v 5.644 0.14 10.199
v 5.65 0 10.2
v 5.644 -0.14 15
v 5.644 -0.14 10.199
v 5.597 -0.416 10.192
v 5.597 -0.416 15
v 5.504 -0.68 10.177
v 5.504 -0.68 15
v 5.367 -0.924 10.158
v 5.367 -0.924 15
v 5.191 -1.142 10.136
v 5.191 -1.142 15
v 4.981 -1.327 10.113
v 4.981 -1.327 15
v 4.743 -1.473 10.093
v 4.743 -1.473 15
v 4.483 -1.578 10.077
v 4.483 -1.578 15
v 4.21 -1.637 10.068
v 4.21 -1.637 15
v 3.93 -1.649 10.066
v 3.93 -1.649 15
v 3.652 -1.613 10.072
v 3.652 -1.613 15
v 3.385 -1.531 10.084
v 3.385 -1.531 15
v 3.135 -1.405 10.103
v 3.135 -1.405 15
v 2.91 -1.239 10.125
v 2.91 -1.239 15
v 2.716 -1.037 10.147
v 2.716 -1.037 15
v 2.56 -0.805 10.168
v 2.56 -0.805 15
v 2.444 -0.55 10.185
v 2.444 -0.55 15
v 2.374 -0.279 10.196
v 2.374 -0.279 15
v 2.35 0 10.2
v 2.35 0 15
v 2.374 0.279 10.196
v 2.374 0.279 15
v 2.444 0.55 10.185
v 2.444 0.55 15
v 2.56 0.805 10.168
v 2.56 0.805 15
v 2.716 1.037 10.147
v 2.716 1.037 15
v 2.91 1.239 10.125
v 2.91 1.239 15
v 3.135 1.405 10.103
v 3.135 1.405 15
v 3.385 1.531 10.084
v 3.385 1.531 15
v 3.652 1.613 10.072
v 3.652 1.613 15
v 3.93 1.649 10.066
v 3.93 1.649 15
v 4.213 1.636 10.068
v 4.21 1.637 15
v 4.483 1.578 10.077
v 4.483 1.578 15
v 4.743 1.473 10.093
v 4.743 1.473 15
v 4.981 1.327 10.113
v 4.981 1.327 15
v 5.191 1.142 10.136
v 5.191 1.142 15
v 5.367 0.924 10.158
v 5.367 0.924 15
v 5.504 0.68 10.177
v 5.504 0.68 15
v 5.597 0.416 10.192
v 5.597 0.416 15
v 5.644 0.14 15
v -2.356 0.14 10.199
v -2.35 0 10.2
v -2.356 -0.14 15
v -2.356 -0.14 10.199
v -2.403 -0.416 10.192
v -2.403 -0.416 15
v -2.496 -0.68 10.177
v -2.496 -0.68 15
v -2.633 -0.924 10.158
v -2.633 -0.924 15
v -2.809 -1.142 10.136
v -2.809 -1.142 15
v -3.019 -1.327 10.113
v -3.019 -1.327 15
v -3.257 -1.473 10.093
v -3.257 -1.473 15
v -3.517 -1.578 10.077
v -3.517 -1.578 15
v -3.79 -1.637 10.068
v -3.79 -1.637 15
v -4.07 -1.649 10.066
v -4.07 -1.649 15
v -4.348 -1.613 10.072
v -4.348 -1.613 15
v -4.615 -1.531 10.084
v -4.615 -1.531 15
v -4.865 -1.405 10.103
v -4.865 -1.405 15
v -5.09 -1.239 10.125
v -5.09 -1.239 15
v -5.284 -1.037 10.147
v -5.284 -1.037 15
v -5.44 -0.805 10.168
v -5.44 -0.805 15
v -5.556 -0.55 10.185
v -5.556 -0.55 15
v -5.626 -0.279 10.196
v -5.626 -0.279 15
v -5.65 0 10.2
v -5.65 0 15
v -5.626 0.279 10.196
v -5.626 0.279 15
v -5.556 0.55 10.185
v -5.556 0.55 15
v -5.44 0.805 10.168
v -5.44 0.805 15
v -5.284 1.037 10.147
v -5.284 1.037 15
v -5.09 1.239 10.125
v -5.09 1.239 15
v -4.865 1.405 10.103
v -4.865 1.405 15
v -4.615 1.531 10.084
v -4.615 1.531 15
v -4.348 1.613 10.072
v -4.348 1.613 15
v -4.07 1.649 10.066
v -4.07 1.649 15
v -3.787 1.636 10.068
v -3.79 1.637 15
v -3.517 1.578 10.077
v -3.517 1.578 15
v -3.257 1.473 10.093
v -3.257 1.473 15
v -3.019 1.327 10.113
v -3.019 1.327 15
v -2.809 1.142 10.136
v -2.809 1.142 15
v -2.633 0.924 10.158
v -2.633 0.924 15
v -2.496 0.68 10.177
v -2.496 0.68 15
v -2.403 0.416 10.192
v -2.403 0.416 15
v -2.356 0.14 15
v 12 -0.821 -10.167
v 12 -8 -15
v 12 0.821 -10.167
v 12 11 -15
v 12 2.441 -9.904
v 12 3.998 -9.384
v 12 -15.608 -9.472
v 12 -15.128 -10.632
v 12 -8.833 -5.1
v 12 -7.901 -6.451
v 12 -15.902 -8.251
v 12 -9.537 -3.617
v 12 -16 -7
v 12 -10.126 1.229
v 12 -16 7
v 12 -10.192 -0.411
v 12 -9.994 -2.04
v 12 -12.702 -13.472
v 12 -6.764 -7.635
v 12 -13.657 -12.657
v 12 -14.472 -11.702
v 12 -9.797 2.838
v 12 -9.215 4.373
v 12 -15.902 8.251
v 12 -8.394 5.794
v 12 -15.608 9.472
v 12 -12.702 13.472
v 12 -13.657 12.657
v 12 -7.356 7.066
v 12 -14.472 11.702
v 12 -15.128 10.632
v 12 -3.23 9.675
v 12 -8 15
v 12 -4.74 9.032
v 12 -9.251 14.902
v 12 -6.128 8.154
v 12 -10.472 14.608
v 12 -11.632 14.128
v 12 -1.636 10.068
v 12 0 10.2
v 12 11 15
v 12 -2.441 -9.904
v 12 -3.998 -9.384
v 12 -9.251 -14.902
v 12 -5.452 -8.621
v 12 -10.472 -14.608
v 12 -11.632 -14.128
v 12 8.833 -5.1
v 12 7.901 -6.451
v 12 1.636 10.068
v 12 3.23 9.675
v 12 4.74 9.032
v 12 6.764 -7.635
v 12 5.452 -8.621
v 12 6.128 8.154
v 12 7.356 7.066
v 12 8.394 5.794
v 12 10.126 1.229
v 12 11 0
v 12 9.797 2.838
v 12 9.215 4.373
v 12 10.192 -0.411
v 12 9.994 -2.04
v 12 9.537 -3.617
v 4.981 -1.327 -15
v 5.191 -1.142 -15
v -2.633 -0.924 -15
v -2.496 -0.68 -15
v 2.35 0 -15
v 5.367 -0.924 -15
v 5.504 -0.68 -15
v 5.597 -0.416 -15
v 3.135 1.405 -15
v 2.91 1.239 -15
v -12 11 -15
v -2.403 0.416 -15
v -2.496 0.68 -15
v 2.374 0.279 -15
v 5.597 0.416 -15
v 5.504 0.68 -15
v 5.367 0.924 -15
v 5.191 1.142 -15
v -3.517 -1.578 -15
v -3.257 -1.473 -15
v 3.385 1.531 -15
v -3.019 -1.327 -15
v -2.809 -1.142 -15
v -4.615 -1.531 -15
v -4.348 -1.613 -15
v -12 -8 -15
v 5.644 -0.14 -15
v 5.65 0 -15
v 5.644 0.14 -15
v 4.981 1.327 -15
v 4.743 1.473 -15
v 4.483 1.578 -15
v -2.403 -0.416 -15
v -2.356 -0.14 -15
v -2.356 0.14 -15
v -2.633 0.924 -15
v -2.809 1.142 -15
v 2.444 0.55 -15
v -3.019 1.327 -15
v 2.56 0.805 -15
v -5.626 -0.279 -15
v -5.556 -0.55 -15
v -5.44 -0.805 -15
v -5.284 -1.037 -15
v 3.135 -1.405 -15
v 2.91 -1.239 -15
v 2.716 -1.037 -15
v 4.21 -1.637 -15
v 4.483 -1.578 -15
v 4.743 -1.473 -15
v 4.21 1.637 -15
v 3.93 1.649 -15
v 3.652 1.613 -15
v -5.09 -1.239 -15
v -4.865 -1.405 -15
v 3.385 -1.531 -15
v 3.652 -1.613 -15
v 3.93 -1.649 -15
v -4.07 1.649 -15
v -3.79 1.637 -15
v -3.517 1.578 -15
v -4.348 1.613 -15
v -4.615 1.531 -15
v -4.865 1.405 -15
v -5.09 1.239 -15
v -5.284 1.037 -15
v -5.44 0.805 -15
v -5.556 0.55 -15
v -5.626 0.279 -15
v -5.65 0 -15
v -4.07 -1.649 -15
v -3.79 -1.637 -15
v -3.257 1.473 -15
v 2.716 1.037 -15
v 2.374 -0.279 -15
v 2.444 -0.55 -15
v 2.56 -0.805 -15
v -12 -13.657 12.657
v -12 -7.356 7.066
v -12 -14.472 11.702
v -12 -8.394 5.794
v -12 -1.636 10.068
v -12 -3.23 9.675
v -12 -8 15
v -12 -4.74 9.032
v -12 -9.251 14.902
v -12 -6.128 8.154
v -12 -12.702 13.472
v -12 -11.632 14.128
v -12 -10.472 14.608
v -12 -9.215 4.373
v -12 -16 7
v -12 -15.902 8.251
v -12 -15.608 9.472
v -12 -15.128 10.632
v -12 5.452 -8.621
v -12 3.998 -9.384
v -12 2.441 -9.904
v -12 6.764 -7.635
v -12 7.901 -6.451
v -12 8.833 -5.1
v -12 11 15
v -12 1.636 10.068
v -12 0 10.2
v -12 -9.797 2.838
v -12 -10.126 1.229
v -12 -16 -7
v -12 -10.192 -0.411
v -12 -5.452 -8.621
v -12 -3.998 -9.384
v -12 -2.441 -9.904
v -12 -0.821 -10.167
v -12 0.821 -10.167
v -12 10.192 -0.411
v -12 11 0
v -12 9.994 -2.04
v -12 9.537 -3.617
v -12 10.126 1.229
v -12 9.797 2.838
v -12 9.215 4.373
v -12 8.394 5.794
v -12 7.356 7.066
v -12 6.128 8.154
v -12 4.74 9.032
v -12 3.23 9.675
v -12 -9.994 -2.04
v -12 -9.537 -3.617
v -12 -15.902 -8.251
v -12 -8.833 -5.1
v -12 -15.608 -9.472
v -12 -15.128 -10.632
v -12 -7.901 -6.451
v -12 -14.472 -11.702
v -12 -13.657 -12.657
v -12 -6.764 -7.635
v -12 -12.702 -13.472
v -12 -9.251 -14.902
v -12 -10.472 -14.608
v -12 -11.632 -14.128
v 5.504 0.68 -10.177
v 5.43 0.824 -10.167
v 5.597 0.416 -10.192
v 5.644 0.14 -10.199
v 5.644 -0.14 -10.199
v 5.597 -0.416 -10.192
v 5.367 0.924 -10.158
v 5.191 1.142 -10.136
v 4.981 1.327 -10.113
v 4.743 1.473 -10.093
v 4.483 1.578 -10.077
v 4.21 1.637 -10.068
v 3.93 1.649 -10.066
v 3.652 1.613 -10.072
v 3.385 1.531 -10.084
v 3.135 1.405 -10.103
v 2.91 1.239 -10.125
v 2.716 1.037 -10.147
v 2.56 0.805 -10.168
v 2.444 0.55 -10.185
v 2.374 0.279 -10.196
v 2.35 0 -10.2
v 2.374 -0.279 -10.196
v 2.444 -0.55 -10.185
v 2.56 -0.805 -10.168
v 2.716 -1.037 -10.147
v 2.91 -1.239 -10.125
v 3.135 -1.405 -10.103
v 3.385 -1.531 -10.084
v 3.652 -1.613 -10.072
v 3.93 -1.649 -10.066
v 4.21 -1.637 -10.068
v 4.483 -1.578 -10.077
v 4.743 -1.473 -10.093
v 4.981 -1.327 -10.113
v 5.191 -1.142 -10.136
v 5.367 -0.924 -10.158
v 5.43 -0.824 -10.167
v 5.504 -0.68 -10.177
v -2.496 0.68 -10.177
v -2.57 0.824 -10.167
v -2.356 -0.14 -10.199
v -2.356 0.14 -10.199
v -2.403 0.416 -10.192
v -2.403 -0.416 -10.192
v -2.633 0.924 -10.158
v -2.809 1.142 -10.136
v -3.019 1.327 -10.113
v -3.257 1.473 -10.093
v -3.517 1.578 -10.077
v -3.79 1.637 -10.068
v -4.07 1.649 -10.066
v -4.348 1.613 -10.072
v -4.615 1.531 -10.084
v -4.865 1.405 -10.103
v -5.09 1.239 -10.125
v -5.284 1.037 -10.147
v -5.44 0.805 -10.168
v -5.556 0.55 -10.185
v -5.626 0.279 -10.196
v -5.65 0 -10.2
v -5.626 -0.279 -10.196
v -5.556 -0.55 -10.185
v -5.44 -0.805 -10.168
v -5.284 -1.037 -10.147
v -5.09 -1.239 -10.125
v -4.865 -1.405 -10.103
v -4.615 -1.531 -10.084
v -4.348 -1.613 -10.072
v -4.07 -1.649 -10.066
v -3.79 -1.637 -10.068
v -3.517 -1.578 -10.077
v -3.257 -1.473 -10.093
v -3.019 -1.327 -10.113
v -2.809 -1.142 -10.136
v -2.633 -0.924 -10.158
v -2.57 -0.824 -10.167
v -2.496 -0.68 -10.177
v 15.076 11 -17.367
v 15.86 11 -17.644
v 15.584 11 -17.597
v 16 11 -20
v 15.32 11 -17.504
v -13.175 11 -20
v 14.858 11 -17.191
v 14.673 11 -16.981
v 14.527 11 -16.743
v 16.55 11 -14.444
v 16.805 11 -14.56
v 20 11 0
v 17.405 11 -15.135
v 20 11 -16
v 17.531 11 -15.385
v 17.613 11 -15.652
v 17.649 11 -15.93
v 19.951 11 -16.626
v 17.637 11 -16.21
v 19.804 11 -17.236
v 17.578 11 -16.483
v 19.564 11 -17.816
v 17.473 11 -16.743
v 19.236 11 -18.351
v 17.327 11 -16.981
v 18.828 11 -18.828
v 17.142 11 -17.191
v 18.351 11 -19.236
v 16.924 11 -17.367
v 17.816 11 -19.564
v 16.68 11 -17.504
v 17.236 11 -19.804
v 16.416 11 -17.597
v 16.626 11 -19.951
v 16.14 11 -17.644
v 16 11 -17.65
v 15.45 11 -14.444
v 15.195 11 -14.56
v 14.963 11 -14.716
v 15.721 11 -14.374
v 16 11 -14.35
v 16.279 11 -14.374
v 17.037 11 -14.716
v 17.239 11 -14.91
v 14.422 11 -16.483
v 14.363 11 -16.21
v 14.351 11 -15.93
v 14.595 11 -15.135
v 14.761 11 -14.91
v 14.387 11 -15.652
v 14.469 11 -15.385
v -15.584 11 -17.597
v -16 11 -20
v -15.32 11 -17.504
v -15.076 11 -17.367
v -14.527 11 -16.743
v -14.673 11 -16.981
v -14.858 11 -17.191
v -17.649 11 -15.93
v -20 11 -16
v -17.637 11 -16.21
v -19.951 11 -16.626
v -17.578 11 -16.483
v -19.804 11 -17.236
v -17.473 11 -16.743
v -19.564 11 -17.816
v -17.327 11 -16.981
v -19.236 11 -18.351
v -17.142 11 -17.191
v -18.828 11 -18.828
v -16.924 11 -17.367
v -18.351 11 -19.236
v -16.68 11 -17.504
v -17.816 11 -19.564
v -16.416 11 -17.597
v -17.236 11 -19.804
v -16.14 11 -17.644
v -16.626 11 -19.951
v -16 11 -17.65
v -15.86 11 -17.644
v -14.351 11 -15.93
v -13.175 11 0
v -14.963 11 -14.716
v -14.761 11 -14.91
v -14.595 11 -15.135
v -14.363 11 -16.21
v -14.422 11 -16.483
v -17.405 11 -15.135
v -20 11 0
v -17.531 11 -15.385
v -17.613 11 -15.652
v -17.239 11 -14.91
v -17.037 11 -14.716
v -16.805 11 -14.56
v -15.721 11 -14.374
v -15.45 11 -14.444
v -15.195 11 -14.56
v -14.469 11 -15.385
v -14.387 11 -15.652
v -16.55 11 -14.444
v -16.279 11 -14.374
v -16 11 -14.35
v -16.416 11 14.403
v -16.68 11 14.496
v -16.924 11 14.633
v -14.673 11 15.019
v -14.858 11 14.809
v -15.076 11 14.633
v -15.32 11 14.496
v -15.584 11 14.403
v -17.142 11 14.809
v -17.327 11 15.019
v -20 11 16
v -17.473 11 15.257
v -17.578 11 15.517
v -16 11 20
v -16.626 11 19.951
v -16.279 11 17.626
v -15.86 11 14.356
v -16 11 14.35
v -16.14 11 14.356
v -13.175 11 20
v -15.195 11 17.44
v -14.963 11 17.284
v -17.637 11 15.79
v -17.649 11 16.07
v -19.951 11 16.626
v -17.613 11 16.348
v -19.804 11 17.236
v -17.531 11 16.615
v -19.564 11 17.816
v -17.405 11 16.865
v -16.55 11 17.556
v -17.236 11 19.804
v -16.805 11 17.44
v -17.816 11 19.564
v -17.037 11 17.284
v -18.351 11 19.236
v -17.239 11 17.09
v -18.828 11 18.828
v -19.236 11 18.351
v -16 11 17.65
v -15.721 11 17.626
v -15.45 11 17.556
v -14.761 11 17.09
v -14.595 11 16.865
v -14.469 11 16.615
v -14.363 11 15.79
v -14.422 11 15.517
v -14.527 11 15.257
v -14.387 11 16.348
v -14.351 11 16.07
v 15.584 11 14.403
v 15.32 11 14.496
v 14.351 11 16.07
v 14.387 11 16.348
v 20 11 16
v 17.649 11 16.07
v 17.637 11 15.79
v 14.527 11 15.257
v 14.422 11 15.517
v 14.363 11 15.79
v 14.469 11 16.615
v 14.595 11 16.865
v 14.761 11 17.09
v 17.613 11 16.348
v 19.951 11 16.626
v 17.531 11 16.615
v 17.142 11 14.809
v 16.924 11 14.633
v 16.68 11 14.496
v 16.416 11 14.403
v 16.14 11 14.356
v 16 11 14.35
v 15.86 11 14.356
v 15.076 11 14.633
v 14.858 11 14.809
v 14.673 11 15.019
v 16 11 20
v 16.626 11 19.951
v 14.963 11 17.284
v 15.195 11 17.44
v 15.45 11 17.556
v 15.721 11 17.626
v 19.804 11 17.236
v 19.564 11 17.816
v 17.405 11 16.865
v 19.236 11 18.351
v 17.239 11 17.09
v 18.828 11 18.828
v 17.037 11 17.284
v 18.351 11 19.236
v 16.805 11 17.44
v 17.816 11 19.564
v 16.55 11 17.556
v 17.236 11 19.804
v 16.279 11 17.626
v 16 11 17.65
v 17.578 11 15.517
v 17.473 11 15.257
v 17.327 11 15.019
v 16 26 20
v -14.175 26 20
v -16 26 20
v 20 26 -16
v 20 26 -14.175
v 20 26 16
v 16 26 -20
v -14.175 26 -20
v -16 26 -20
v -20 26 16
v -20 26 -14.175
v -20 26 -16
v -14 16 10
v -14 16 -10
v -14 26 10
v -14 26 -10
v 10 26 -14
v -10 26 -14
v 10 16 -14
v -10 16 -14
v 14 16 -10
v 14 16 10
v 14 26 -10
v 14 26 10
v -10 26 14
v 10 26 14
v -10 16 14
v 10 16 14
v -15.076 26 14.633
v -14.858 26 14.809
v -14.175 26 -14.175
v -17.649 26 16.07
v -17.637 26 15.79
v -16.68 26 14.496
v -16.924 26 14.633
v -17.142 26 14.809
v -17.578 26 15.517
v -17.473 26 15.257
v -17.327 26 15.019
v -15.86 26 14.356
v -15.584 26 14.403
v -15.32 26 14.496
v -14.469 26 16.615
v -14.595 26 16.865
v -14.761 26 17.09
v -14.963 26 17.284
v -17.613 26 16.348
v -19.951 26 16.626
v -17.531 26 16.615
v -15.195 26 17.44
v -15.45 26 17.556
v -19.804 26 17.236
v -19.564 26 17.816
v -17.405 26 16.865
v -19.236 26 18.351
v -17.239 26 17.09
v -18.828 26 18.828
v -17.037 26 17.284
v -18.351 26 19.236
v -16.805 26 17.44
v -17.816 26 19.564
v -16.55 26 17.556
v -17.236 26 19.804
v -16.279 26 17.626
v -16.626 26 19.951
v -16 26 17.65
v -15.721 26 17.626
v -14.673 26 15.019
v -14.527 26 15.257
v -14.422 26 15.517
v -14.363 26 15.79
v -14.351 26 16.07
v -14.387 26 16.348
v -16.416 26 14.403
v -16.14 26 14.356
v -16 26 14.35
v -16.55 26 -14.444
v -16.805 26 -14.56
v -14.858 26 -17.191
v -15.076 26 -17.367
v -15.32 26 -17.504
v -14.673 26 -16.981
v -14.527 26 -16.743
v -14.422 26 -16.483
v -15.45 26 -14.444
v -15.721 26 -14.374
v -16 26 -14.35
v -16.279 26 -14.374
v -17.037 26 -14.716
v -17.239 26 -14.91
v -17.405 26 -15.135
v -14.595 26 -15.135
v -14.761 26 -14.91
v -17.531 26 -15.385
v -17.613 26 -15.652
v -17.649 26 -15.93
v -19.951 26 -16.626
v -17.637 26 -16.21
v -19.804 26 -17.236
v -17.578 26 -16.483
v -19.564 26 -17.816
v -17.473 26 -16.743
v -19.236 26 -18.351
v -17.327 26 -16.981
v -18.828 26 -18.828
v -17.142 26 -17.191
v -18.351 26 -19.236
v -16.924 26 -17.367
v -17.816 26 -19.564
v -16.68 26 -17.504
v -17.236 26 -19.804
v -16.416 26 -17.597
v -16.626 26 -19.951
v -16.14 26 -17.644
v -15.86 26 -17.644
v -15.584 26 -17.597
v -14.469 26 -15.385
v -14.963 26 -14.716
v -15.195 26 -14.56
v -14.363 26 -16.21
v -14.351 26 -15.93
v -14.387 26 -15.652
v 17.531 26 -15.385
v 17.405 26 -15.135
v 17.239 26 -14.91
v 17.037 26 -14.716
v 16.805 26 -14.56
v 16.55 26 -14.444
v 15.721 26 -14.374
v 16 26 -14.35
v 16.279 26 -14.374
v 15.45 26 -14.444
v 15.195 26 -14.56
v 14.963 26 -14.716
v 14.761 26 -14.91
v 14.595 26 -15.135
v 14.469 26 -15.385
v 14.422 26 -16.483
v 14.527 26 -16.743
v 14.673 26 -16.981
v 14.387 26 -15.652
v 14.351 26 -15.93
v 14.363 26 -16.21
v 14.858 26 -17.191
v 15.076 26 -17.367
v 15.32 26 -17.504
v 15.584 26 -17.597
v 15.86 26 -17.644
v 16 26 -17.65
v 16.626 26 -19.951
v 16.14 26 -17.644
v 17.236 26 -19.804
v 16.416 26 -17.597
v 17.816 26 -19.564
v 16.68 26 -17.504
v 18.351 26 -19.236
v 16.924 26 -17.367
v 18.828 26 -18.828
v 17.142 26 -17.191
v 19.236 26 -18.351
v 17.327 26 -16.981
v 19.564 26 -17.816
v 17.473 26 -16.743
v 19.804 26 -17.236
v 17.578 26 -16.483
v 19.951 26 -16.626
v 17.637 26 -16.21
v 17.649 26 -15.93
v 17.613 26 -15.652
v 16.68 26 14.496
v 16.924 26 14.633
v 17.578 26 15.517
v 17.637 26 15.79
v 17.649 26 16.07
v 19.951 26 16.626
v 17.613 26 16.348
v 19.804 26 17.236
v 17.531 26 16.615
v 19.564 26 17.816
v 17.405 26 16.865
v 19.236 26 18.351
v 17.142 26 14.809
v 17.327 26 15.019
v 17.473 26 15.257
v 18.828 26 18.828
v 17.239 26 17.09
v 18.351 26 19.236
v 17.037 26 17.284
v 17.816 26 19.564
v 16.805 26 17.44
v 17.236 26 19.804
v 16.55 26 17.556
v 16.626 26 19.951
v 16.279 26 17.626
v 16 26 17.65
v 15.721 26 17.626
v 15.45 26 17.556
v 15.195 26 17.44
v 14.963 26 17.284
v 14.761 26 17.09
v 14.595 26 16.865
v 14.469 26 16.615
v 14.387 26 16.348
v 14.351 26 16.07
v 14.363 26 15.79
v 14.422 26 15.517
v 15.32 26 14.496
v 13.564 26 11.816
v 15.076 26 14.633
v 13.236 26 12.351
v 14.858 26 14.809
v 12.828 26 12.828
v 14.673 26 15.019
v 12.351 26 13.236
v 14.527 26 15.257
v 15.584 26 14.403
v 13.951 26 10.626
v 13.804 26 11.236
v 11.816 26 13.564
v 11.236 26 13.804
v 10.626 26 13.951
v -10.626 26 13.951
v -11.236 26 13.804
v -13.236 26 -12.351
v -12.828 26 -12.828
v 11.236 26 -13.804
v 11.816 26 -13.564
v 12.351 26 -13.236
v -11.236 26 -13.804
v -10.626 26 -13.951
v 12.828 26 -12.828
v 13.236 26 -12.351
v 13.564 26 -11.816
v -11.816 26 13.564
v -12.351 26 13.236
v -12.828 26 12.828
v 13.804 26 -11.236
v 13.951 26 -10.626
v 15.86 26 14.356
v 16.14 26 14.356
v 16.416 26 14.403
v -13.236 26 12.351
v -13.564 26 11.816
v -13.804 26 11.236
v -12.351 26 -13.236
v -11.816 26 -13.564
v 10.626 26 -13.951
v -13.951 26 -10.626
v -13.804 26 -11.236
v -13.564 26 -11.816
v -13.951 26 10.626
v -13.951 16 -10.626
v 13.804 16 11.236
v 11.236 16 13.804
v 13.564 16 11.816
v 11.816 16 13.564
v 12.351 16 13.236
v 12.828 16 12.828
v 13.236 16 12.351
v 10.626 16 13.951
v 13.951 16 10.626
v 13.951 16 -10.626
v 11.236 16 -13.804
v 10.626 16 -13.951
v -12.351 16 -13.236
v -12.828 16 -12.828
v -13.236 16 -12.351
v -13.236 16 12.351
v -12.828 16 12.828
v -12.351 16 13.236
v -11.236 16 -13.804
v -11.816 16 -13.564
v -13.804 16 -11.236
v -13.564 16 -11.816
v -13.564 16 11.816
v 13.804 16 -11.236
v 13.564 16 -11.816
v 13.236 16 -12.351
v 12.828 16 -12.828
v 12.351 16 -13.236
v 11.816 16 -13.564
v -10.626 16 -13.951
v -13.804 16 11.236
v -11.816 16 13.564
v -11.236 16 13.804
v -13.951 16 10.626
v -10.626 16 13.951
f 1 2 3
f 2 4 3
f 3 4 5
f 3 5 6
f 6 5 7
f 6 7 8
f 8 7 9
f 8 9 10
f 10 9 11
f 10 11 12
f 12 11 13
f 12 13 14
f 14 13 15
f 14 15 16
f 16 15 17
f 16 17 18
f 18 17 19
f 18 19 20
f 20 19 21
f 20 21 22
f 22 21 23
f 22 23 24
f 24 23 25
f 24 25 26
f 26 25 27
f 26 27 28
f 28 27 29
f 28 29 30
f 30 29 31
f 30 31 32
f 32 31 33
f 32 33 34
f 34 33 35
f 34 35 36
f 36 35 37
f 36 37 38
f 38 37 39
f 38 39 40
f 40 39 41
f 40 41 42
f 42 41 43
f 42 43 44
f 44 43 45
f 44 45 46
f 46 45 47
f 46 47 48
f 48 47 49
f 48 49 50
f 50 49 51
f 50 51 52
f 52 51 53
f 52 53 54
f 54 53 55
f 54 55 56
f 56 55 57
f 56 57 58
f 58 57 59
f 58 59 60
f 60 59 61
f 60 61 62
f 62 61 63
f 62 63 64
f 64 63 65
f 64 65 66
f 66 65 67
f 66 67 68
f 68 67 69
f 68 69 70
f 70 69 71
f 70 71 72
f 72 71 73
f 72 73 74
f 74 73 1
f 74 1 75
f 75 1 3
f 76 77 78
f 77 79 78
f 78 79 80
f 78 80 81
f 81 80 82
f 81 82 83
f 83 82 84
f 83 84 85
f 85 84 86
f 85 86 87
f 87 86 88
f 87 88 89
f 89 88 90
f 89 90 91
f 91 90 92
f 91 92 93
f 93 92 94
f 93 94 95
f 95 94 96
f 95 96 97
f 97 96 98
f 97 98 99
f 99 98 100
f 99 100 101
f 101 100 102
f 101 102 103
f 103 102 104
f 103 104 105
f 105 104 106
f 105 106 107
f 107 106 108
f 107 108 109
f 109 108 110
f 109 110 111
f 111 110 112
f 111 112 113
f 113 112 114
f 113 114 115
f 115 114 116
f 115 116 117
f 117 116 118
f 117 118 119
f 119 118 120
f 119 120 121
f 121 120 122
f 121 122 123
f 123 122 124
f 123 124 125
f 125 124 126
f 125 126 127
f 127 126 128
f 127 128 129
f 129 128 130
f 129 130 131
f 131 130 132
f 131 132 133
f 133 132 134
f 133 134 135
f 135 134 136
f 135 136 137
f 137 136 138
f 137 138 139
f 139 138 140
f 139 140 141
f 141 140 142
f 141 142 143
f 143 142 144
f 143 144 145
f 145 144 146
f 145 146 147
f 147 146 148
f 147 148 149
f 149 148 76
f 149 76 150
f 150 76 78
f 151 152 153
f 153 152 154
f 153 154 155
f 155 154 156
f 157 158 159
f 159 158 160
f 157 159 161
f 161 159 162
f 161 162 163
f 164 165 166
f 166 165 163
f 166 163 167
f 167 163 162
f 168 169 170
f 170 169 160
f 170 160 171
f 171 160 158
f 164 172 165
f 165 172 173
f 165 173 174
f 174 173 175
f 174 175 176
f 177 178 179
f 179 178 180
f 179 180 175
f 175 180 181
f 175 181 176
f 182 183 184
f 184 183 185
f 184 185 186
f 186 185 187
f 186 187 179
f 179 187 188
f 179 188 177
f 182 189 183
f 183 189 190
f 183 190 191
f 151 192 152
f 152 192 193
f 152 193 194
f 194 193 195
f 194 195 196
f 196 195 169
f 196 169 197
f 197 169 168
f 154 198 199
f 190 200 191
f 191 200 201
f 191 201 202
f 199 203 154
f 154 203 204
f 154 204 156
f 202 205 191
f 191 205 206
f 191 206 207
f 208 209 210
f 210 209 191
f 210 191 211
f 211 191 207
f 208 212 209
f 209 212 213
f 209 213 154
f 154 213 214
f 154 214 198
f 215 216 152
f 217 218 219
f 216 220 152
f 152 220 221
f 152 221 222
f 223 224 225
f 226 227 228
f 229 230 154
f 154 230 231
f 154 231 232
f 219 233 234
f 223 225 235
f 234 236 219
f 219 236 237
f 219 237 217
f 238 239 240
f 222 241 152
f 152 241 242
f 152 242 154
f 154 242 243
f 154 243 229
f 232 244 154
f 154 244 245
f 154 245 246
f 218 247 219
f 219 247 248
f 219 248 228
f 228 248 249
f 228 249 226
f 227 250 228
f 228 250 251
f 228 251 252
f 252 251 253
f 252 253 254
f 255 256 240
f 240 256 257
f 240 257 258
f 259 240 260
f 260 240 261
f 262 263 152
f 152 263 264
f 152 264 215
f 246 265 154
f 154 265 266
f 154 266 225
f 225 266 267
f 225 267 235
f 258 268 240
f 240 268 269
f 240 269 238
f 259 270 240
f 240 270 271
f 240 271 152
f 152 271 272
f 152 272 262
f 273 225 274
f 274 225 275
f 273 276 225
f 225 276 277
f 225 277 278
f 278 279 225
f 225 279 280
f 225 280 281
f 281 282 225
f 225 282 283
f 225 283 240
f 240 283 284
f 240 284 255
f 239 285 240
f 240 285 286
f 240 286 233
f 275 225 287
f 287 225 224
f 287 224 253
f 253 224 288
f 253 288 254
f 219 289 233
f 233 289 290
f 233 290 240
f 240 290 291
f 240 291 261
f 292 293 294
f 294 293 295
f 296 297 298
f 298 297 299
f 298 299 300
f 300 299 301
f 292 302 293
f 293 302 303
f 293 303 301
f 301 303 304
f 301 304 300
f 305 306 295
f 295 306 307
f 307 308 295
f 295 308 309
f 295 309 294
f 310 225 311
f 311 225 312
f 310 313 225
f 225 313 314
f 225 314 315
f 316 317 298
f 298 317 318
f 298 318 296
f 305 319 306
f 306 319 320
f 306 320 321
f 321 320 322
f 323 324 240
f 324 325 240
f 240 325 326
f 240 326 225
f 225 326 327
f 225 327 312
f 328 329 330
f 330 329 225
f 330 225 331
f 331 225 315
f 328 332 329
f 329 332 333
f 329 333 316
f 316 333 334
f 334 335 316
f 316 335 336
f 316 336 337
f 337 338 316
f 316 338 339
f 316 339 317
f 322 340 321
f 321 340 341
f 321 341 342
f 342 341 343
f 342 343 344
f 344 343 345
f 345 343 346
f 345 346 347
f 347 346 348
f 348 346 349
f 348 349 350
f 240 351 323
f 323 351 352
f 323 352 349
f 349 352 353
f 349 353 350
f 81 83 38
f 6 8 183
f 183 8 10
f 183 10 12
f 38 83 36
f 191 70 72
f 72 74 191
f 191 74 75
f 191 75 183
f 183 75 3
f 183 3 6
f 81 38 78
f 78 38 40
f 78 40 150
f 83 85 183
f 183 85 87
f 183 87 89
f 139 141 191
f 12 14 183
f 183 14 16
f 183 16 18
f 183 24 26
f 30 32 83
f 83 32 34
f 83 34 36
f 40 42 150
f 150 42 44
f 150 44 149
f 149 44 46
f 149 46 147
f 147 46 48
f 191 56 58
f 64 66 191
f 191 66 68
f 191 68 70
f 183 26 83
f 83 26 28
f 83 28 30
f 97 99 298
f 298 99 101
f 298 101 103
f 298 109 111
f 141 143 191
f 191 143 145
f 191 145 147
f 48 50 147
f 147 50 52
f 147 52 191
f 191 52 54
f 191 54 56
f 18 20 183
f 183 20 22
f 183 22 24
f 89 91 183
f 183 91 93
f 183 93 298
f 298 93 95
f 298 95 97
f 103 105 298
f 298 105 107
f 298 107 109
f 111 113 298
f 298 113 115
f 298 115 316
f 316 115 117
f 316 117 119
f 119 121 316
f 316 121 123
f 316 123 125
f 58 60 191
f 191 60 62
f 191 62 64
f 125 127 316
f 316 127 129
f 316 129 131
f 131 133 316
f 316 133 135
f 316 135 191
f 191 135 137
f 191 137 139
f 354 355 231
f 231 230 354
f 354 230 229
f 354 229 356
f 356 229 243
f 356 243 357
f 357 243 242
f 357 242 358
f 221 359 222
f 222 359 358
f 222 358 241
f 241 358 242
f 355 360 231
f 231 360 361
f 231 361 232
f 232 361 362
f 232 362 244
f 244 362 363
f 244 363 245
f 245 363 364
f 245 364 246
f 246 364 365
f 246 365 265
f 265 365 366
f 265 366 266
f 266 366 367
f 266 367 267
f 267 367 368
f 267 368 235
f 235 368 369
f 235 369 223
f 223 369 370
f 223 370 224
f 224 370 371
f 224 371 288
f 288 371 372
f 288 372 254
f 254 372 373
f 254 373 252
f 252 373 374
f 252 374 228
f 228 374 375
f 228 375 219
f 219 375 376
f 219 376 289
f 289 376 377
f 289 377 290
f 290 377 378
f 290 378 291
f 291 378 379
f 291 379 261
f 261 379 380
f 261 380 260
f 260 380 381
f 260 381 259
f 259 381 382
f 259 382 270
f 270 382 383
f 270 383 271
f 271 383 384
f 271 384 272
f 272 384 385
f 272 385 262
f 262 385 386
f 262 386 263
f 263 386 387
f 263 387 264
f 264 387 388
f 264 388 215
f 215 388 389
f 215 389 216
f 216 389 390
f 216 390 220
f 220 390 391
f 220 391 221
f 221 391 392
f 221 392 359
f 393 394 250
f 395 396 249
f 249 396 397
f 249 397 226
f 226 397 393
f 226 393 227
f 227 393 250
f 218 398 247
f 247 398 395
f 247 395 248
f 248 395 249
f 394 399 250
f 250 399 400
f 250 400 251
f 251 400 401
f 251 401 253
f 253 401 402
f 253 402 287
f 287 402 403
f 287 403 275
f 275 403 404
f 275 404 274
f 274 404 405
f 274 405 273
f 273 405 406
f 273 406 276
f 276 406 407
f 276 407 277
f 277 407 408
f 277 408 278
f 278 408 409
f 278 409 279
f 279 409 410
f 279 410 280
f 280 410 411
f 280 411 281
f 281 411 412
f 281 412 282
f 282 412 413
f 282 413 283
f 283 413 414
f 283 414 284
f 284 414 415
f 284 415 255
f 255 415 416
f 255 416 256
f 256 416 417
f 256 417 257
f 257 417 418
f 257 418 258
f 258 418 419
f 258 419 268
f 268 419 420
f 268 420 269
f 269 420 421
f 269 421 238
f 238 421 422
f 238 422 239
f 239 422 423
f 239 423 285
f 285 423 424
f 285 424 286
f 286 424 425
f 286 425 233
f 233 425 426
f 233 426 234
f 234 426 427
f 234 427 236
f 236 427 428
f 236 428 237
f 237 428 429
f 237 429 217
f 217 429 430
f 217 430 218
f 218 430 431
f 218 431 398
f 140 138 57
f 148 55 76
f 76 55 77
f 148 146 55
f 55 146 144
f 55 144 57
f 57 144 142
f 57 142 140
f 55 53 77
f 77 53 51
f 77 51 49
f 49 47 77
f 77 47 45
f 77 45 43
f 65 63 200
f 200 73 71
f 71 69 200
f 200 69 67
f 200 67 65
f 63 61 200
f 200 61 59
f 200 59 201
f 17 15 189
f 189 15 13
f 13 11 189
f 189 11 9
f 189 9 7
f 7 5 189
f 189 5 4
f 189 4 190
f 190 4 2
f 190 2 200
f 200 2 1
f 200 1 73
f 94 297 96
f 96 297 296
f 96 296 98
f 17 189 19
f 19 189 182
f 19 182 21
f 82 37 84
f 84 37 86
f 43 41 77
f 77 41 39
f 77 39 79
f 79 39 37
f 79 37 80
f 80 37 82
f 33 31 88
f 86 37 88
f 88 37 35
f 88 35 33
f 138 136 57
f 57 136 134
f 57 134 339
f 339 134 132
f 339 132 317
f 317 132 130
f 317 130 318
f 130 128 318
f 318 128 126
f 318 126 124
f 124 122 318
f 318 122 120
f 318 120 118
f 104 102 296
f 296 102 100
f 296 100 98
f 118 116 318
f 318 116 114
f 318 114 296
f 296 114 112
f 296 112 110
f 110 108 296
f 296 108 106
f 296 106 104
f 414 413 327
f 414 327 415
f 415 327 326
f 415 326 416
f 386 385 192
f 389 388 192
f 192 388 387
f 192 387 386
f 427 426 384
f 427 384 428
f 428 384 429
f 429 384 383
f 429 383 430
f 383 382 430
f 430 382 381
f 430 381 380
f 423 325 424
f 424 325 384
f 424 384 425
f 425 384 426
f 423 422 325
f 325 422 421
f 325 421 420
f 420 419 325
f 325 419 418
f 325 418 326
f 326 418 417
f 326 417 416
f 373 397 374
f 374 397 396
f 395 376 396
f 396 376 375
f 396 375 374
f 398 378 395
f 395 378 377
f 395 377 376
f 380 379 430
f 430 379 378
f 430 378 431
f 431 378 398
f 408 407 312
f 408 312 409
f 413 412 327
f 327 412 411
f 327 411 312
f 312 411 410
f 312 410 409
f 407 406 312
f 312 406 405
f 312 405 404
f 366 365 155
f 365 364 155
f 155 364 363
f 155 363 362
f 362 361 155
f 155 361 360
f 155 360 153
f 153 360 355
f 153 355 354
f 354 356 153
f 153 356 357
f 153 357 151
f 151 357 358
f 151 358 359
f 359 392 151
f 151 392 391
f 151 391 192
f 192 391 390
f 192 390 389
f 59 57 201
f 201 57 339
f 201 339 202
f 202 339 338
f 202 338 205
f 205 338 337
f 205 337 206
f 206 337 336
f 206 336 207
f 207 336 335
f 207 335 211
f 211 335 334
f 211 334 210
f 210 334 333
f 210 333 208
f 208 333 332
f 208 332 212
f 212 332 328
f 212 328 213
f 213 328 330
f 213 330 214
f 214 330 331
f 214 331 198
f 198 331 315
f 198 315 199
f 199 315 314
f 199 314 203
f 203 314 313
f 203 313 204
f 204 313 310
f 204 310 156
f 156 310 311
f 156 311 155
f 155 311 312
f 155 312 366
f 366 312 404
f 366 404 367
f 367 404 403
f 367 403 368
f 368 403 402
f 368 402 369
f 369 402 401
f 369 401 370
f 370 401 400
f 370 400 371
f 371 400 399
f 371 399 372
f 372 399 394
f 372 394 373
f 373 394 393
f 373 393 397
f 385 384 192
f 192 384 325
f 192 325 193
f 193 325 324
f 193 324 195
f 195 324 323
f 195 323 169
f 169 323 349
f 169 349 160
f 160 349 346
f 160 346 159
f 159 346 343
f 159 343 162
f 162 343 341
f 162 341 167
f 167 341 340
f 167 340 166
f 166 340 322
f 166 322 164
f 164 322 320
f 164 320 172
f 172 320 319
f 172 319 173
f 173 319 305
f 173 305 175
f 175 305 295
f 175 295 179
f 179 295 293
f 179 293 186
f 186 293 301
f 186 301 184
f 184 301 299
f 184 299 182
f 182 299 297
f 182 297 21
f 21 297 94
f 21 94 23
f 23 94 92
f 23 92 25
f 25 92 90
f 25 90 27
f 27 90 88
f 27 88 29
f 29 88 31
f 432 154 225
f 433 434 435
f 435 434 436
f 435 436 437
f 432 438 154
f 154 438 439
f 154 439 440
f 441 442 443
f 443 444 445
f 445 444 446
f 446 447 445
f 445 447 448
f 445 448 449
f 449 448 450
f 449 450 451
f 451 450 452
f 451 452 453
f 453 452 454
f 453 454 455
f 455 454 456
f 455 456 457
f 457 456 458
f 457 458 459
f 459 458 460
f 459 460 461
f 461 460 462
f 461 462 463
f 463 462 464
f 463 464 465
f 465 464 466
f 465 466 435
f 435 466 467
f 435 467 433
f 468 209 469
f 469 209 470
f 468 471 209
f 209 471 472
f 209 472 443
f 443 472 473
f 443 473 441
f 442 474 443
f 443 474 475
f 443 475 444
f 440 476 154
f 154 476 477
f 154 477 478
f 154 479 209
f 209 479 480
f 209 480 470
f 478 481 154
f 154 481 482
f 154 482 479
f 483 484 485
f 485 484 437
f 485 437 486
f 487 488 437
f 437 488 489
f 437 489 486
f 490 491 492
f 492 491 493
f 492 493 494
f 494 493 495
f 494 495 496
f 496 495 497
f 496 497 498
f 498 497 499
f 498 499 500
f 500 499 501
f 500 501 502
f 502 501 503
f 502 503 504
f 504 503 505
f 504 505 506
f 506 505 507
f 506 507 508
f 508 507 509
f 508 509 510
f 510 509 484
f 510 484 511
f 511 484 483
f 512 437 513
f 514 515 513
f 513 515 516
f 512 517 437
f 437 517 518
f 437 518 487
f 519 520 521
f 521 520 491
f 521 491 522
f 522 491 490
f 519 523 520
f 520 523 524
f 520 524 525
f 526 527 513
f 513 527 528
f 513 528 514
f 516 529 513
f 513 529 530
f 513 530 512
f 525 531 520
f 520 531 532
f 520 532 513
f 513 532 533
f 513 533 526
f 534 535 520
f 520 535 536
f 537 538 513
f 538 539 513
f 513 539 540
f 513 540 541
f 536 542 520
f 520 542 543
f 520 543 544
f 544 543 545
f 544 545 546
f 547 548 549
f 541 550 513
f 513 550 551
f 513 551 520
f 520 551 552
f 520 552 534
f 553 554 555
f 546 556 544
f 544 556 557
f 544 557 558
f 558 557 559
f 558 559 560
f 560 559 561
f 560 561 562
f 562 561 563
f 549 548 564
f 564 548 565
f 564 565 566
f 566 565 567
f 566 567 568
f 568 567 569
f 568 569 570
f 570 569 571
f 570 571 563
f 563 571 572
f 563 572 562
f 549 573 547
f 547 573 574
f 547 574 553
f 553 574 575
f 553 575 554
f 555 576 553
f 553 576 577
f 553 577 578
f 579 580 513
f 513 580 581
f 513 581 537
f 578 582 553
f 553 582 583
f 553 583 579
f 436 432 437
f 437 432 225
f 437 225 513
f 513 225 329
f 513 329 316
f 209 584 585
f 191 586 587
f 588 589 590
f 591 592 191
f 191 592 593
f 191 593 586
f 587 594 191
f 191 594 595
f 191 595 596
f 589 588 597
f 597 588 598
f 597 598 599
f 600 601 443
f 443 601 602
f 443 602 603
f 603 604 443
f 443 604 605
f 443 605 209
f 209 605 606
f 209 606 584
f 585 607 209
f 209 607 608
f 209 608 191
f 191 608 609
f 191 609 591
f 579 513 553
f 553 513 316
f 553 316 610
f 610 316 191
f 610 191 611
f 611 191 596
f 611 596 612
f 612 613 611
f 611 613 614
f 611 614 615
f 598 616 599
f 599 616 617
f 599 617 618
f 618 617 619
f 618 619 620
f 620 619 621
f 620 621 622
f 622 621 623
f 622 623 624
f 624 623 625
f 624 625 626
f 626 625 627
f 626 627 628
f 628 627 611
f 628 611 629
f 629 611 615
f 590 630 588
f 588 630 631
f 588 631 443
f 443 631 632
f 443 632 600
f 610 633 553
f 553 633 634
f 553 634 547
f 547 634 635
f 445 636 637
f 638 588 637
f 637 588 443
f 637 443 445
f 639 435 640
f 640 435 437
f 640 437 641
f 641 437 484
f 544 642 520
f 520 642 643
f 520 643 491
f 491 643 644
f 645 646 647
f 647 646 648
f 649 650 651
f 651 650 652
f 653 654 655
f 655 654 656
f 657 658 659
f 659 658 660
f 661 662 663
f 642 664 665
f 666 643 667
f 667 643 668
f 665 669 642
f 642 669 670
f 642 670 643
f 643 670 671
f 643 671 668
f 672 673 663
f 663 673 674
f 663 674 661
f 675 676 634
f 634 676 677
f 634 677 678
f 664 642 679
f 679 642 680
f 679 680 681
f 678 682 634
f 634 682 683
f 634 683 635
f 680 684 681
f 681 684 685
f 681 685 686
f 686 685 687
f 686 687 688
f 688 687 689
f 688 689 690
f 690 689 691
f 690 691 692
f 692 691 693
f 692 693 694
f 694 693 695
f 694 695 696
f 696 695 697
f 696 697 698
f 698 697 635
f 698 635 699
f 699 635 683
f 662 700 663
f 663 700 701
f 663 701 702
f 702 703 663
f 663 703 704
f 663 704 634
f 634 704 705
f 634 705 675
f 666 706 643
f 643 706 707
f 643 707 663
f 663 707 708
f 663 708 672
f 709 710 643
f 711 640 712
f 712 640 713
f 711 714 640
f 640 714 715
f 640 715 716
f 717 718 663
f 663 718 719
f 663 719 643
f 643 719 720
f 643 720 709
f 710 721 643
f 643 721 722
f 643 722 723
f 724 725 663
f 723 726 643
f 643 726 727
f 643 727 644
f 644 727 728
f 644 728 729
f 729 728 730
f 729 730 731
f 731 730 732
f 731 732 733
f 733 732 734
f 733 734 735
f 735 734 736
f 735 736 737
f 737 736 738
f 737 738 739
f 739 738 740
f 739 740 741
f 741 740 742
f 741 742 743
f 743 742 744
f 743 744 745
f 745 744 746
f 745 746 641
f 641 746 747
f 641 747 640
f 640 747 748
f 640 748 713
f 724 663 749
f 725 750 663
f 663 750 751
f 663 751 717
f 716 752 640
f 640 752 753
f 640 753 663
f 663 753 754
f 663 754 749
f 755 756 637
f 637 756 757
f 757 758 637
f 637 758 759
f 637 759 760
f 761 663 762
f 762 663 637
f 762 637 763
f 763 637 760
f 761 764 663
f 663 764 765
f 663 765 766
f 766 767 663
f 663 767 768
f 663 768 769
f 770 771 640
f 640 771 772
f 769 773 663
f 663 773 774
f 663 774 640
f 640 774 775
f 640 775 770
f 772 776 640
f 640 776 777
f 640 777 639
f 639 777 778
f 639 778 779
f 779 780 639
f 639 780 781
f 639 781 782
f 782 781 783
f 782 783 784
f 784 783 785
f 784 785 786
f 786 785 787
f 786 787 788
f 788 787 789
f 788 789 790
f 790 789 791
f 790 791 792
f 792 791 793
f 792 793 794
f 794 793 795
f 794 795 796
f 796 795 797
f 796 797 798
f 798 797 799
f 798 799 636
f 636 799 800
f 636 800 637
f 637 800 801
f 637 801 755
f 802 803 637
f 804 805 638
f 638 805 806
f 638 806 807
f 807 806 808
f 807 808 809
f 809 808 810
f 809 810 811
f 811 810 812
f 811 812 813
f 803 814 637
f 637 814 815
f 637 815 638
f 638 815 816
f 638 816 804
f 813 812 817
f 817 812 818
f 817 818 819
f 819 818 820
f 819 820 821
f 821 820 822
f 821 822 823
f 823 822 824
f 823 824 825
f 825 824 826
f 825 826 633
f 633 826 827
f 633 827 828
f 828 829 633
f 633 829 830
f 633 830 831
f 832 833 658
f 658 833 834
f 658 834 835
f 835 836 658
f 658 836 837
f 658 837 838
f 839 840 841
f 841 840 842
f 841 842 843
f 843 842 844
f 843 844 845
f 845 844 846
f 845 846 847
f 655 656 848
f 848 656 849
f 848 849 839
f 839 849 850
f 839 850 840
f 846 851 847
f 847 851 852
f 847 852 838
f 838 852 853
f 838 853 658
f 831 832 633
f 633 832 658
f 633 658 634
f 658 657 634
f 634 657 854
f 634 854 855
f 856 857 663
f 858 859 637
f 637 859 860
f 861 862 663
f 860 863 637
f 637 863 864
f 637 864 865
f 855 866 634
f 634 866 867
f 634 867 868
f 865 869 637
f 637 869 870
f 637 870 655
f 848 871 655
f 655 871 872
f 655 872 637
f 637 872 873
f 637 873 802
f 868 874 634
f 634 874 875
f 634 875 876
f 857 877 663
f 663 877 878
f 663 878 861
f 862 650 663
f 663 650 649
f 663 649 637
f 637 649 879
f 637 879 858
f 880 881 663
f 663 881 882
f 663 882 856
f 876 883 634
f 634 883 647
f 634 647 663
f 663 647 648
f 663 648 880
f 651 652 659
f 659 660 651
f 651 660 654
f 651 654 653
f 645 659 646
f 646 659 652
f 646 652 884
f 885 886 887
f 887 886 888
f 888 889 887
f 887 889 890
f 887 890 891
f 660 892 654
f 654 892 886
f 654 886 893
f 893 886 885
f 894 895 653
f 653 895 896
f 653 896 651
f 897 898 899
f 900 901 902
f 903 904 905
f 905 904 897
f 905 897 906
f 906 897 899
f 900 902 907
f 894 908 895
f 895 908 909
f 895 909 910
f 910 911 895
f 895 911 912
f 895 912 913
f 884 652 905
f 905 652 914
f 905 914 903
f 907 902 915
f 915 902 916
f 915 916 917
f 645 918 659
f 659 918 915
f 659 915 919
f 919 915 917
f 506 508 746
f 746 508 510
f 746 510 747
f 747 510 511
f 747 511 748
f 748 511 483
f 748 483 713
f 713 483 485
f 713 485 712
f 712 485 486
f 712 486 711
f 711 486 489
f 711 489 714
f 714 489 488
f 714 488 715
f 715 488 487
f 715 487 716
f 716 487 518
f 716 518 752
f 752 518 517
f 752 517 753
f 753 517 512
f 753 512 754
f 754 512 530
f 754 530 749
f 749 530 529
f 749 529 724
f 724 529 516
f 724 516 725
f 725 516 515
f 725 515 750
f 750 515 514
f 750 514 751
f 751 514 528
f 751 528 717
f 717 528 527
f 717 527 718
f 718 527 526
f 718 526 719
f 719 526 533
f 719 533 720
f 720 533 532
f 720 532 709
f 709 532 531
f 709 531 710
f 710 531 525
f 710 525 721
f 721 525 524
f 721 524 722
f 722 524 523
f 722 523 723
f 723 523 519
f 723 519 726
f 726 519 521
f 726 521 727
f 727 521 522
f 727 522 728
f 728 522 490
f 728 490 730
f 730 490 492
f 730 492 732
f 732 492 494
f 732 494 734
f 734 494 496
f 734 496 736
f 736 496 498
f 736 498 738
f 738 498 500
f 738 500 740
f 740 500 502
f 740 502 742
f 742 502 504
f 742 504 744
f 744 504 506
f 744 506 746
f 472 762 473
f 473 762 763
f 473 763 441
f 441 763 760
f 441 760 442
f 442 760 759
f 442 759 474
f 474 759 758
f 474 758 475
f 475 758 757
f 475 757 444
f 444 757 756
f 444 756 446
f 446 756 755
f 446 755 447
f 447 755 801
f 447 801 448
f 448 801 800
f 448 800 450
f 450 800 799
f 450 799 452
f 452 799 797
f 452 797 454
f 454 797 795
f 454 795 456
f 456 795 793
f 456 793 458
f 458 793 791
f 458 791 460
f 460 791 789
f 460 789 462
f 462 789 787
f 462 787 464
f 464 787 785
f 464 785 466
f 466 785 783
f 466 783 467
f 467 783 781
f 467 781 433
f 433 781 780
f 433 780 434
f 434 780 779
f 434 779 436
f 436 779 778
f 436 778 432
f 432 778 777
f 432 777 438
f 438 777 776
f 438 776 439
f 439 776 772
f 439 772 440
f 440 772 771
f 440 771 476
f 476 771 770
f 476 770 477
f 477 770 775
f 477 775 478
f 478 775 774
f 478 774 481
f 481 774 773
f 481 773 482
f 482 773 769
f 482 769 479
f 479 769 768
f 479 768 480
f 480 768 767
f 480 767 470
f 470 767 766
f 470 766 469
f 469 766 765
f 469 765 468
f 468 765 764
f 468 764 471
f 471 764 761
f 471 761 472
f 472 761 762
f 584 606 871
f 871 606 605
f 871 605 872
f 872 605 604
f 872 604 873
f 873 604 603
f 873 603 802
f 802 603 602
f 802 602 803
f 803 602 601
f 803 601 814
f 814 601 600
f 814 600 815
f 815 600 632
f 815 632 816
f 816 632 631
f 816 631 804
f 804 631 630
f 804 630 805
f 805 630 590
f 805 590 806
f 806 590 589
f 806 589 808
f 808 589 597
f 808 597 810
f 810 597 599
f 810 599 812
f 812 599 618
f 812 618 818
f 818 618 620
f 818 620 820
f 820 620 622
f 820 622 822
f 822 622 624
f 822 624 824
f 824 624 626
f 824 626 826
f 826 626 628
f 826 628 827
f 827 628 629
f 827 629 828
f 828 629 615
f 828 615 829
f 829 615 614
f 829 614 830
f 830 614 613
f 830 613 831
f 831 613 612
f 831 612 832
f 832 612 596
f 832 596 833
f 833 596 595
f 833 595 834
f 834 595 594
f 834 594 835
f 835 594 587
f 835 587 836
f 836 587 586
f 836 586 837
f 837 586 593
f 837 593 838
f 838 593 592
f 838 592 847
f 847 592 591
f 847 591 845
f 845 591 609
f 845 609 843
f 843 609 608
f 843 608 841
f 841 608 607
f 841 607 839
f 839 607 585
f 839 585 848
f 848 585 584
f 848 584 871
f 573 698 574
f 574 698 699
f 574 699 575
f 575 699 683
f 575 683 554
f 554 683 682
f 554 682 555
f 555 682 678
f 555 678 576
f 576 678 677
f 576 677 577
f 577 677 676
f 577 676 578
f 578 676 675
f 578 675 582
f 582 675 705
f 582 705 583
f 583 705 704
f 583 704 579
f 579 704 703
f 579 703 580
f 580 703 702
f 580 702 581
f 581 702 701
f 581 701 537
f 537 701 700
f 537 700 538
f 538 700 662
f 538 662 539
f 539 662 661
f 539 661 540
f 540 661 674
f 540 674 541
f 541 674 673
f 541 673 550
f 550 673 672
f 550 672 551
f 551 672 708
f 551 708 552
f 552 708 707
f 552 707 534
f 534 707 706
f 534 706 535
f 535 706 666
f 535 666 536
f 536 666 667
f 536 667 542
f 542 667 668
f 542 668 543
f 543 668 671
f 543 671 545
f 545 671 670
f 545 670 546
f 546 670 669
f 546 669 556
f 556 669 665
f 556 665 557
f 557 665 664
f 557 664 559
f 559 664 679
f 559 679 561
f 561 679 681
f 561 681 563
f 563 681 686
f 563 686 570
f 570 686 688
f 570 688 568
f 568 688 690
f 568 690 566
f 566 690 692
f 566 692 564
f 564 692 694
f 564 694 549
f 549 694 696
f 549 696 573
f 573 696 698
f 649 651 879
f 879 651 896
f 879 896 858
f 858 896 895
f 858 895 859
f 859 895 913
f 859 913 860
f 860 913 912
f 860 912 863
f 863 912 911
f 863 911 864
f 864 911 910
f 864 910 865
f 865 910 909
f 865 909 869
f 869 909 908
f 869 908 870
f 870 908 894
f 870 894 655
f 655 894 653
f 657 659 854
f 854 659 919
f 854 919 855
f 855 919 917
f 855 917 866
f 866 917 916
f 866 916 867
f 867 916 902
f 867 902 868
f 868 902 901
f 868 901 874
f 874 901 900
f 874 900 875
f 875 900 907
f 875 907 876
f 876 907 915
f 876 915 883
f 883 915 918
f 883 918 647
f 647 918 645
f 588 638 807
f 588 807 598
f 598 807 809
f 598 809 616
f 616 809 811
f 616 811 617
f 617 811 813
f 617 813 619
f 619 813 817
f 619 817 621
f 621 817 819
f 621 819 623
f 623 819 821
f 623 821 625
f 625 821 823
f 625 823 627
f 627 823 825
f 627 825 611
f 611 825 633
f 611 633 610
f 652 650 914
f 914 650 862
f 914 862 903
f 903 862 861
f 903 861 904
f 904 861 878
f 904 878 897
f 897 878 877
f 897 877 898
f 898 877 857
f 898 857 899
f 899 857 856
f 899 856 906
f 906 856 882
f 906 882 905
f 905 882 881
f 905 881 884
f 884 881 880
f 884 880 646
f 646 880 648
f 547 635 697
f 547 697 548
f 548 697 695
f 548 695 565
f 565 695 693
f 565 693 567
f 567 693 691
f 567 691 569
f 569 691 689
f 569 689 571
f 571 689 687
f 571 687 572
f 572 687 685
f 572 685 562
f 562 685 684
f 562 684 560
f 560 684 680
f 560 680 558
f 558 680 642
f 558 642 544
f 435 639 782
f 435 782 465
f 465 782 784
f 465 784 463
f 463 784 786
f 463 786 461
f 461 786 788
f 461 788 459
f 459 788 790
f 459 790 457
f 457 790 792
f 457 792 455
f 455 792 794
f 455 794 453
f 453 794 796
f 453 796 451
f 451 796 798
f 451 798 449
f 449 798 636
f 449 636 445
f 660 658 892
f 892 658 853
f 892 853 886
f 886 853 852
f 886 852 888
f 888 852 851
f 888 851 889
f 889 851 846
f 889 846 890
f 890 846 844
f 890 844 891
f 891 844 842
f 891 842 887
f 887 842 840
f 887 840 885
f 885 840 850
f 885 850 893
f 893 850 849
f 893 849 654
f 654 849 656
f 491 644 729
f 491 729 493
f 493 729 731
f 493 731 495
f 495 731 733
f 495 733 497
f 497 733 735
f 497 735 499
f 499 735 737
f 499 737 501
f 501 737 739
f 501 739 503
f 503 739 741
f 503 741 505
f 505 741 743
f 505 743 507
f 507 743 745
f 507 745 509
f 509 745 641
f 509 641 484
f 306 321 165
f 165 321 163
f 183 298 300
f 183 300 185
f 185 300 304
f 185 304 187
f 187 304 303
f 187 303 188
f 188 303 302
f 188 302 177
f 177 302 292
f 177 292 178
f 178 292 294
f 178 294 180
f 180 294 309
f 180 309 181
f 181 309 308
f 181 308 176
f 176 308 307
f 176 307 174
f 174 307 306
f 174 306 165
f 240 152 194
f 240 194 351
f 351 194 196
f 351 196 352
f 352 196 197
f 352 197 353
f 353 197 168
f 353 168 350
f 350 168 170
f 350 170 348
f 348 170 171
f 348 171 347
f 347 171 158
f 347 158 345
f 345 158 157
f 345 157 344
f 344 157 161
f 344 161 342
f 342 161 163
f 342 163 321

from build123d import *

# Parameters (mm, degrees)
SKETCH1_W           = 24
SKETCH1_H           = 30
BOSS_EXTRUDE1_DEPTH = 11
SKETCH2_R           = 1.65
CUT_EXTRUDE1_DEPTH  = 30
SKETCH3_R           = 10.2
CUT_EXTRUDE2_DEPTH  = 24
SKETCH5_W           = 40
SKETCH5_H           = 40
BOSS_EXTRUDE3_DEPTH = 5
SKETCH8_W           = 40
SKETCH8_H           = 40
SKETCH8_W_2         = 28
SKETCH8_H_2         = 28
BOSS_EXTRUDE4_DEPTH = 10
SKETCH9_R           = 1.65
CUT_EXTRUDE3_DEPTH  = 15
FILLET3_R           = 4
SKETCH10_W          = 24
SKETCH10_H          = 30
BOSS_EXTRUDE5_DEPTH = 5
FILLET6_R           = 8


with BuildPart() as part:
    # Sketch1 → Boss-Extrude1 (new body, symmetric)
    with BuildSketch(Plane(origin=(0, 0, 0), x_dir=(1, 0, 0), z_dir=(0, 1, 0))):
        Rectangle(SKETCH1_W, SKETCH1_H)
    extrude(amount=BOSS_EXTRUDE1_DEPTH, both=True)

    # Sketch2 → Cut-Extrude1 (cut)
    with BuildSketch(Plane(origin=(0, 0, -15), x_dir=(-1, 0, 0), z_dir=(0, 0, -1))):
        with Locations((4, 0)):
            Circle(SKETCH2_R)
        with Locations((-4, 0)):
            Circle(SKETCH2_R)
    extrude(amount=-CUT_EXTRUDE1_DEPTH, mode=Mode.SUBTRACT)

    # Sketch3 → Cut-Extrude2 (cut)
    with BuildSketch(Plane.ZY.offset(12)):
        Circle(SKETCH3_R)
    extrude(amount=-CUT_EXTRUDE2_DEPTH, mode=Mode.SUBTRACT)

    # Sketch5 → Boss-Extrude3 (add)
    with BuildSketch(Plane(origin=(0, 16, 0), x_dir=(1, 0, 0), z_dir=(0, 1, 0))):
        Rectangle(SKETCH5_W, SKETCH5_H)
    extrude(amount=-BOSS_EXTRUDE3_DEPTH)

    # Sketch8 → Boss-Extrude4 (add)
    with BuildSketch(Plane(origin=(0, 16, 0), x_dir=(1, 0, 0), z_dir=(0, 1, 0))):
        Rectangle(SKETCH8_W, SKETCH8_H)
        Rectangle(SKETCH8_W_2, SKETCH8_H_2, mode=Mode.SUBTRACT)
    extrude(amount=BOSS_EXTRUDE4_DEPTH)

    # Sketch9 → Cut-Extrude3 (cut)
    with BuildSketch(Plane(origin=(0, 26, 0), x_dir=(1, 0, 0), z_dir=(0, 1, 0))):
        with Locations((-16, 16)):
            Circle(SKETCH9_R)
        with Locations((16, 16)):
            Circle(SKETCH9_R)
        with Locations((16, -16)):
            Circle(SKETCH9_R)
        with Locations((-16, -16)):
            Circle(SKETCH9_R)
    extrude(amount=-CUT_EXTRUDE3_DEPTH, mode=Mode.SUBTRACT)

    # Fillet3
    fillet3_edges = [part.edges().sort_by_distance(p)[0] for p in [
        (20, 18.5, 20),
        (20, 18.5, -20),
        (-20, 18.5, -20),
        (-20, 18.5, 20),
        (-14, 21, 14),
        (-14, 21, -14),
        (14, 21, -14),
        (14, 21, 14),
    ]]
    fillet(fillet3_edges, radius=FILLET3_R)

    # Sketch10 → Boss-Extrude5 (add)
    with BuildSketch(Plane.XZ.offset(11)):
        Rectangle(SKETCH10_W, SKETCH10_H)
    extrude(amount=BOSS_EXTRUDE5_DEPTH)

    # Fillet6
    fillet6_edges = [part.edges().sort_by_distance(p)[0] for p in [
        (0, -16, 15),
        (0, -16, -15),
    ]]
    fillet(fillet6_edges, radius=FILLET6_R)


solid = part.part
